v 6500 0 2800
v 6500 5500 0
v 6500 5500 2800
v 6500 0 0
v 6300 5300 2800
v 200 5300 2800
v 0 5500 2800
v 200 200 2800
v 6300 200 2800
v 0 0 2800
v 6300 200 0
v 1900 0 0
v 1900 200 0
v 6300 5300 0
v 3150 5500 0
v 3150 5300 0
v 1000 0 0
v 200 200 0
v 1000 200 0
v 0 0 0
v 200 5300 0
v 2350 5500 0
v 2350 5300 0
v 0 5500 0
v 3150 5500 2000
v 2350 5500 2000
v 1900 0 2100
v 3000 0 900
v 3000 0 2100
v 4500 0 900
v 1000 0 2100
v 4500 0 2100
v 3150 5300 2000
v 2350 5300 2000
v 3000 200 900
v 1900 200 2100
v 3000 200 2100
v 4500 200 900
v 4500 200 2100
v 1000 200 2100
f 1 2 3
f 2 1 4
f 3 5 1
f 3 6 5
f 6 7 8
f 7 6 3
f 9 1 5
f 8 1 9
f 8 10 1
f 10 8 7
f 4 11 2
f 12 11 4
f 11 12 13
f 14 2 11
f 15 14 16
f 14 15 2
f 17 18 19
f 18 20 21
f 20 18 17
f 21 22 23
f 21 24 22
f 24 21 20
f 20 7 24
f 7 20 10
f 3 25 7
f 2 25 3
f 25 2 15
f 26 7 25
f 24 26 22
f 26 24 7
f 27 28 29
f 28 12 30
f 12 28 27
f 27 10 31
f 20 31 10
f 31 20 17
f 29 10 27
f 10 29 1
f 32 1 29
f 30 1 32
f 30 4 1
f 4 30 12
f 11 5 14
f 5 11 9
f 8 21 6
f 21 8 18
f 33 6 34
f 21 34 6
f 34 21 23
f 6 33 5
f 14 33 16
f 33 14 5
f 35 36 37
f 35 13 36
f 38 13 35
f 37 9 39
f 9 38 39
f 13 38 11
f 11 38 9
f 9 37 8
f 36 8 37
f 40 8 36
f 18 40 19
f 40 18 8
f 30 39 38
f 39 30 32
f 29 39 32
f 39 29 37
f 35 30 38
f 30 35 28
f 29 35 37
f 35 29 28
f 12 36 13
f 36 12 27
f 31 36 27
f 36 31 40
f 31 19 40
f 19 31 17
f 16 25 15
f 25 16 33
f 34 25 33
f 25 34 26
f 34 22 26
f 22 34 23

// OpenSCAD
// Concrete 3D Printed Room - Parametric Design
// All measurements in millimeters (mm)

// === ROOM DIMENSIONS ===
room_length = 6500;        // 5 meters
room_width = 5500;         // 4 meters  
wall_height = 2800;        // 2.8 meters (standard ceiling height)
wall_thickness = 200;      // 20 cm (typical concrete 3D print)

// === WINDOW ===
window_width = 1500;       // 1.5 meters wide
window_height = 1200;      // 1.2 meters tall
window_position = 3000;    // 3 meters from left corner
window_sill_height = 900;  // 90 cm from floor

// === DOORS ===
door1_width = 900;         // 0.9 meters wide
door1_height = 2100;       // 2.1 meters tall
door1_position = 1000;     // Position from left corner
door2_width = 800;         // 0.8 meters wide
door2_height = 2000;       // 2 meters tall

// === GEOMETRY ===
module room() {
    difference() {
        // Outer walls (solid block)
        cube([room_length, room_width, wall_height]);
        
        // Interior cavity (hollow out the room)
        translate([wall_thickness, wall_thickness, 0])
            cube([
                room_length - 2*wall_thickness,
                room_width - 2*wall_thickness,
                wall_height + 100  // Extra height to ensure clean cut
            ]);
        
        // Window opening (front wall)
        translate([window_position, -10, window_sill_height])
            cube([window_width, wall_thickness + 20, window_height]);
        
        // Door 1 opening (front wall)
        translate([door1_position, -10, 0])
            cube([door1_width, wall_thickness + 20, door1_height]);
        
        // Door 2 opening (back wall)
        translate([room_width/2 - door2_width/2, room_width - wall_thickness - 10, 0])
            cube([door2_width, wall_thickness + 20, door2_height]);
    }
}

// Generate the room
room();
